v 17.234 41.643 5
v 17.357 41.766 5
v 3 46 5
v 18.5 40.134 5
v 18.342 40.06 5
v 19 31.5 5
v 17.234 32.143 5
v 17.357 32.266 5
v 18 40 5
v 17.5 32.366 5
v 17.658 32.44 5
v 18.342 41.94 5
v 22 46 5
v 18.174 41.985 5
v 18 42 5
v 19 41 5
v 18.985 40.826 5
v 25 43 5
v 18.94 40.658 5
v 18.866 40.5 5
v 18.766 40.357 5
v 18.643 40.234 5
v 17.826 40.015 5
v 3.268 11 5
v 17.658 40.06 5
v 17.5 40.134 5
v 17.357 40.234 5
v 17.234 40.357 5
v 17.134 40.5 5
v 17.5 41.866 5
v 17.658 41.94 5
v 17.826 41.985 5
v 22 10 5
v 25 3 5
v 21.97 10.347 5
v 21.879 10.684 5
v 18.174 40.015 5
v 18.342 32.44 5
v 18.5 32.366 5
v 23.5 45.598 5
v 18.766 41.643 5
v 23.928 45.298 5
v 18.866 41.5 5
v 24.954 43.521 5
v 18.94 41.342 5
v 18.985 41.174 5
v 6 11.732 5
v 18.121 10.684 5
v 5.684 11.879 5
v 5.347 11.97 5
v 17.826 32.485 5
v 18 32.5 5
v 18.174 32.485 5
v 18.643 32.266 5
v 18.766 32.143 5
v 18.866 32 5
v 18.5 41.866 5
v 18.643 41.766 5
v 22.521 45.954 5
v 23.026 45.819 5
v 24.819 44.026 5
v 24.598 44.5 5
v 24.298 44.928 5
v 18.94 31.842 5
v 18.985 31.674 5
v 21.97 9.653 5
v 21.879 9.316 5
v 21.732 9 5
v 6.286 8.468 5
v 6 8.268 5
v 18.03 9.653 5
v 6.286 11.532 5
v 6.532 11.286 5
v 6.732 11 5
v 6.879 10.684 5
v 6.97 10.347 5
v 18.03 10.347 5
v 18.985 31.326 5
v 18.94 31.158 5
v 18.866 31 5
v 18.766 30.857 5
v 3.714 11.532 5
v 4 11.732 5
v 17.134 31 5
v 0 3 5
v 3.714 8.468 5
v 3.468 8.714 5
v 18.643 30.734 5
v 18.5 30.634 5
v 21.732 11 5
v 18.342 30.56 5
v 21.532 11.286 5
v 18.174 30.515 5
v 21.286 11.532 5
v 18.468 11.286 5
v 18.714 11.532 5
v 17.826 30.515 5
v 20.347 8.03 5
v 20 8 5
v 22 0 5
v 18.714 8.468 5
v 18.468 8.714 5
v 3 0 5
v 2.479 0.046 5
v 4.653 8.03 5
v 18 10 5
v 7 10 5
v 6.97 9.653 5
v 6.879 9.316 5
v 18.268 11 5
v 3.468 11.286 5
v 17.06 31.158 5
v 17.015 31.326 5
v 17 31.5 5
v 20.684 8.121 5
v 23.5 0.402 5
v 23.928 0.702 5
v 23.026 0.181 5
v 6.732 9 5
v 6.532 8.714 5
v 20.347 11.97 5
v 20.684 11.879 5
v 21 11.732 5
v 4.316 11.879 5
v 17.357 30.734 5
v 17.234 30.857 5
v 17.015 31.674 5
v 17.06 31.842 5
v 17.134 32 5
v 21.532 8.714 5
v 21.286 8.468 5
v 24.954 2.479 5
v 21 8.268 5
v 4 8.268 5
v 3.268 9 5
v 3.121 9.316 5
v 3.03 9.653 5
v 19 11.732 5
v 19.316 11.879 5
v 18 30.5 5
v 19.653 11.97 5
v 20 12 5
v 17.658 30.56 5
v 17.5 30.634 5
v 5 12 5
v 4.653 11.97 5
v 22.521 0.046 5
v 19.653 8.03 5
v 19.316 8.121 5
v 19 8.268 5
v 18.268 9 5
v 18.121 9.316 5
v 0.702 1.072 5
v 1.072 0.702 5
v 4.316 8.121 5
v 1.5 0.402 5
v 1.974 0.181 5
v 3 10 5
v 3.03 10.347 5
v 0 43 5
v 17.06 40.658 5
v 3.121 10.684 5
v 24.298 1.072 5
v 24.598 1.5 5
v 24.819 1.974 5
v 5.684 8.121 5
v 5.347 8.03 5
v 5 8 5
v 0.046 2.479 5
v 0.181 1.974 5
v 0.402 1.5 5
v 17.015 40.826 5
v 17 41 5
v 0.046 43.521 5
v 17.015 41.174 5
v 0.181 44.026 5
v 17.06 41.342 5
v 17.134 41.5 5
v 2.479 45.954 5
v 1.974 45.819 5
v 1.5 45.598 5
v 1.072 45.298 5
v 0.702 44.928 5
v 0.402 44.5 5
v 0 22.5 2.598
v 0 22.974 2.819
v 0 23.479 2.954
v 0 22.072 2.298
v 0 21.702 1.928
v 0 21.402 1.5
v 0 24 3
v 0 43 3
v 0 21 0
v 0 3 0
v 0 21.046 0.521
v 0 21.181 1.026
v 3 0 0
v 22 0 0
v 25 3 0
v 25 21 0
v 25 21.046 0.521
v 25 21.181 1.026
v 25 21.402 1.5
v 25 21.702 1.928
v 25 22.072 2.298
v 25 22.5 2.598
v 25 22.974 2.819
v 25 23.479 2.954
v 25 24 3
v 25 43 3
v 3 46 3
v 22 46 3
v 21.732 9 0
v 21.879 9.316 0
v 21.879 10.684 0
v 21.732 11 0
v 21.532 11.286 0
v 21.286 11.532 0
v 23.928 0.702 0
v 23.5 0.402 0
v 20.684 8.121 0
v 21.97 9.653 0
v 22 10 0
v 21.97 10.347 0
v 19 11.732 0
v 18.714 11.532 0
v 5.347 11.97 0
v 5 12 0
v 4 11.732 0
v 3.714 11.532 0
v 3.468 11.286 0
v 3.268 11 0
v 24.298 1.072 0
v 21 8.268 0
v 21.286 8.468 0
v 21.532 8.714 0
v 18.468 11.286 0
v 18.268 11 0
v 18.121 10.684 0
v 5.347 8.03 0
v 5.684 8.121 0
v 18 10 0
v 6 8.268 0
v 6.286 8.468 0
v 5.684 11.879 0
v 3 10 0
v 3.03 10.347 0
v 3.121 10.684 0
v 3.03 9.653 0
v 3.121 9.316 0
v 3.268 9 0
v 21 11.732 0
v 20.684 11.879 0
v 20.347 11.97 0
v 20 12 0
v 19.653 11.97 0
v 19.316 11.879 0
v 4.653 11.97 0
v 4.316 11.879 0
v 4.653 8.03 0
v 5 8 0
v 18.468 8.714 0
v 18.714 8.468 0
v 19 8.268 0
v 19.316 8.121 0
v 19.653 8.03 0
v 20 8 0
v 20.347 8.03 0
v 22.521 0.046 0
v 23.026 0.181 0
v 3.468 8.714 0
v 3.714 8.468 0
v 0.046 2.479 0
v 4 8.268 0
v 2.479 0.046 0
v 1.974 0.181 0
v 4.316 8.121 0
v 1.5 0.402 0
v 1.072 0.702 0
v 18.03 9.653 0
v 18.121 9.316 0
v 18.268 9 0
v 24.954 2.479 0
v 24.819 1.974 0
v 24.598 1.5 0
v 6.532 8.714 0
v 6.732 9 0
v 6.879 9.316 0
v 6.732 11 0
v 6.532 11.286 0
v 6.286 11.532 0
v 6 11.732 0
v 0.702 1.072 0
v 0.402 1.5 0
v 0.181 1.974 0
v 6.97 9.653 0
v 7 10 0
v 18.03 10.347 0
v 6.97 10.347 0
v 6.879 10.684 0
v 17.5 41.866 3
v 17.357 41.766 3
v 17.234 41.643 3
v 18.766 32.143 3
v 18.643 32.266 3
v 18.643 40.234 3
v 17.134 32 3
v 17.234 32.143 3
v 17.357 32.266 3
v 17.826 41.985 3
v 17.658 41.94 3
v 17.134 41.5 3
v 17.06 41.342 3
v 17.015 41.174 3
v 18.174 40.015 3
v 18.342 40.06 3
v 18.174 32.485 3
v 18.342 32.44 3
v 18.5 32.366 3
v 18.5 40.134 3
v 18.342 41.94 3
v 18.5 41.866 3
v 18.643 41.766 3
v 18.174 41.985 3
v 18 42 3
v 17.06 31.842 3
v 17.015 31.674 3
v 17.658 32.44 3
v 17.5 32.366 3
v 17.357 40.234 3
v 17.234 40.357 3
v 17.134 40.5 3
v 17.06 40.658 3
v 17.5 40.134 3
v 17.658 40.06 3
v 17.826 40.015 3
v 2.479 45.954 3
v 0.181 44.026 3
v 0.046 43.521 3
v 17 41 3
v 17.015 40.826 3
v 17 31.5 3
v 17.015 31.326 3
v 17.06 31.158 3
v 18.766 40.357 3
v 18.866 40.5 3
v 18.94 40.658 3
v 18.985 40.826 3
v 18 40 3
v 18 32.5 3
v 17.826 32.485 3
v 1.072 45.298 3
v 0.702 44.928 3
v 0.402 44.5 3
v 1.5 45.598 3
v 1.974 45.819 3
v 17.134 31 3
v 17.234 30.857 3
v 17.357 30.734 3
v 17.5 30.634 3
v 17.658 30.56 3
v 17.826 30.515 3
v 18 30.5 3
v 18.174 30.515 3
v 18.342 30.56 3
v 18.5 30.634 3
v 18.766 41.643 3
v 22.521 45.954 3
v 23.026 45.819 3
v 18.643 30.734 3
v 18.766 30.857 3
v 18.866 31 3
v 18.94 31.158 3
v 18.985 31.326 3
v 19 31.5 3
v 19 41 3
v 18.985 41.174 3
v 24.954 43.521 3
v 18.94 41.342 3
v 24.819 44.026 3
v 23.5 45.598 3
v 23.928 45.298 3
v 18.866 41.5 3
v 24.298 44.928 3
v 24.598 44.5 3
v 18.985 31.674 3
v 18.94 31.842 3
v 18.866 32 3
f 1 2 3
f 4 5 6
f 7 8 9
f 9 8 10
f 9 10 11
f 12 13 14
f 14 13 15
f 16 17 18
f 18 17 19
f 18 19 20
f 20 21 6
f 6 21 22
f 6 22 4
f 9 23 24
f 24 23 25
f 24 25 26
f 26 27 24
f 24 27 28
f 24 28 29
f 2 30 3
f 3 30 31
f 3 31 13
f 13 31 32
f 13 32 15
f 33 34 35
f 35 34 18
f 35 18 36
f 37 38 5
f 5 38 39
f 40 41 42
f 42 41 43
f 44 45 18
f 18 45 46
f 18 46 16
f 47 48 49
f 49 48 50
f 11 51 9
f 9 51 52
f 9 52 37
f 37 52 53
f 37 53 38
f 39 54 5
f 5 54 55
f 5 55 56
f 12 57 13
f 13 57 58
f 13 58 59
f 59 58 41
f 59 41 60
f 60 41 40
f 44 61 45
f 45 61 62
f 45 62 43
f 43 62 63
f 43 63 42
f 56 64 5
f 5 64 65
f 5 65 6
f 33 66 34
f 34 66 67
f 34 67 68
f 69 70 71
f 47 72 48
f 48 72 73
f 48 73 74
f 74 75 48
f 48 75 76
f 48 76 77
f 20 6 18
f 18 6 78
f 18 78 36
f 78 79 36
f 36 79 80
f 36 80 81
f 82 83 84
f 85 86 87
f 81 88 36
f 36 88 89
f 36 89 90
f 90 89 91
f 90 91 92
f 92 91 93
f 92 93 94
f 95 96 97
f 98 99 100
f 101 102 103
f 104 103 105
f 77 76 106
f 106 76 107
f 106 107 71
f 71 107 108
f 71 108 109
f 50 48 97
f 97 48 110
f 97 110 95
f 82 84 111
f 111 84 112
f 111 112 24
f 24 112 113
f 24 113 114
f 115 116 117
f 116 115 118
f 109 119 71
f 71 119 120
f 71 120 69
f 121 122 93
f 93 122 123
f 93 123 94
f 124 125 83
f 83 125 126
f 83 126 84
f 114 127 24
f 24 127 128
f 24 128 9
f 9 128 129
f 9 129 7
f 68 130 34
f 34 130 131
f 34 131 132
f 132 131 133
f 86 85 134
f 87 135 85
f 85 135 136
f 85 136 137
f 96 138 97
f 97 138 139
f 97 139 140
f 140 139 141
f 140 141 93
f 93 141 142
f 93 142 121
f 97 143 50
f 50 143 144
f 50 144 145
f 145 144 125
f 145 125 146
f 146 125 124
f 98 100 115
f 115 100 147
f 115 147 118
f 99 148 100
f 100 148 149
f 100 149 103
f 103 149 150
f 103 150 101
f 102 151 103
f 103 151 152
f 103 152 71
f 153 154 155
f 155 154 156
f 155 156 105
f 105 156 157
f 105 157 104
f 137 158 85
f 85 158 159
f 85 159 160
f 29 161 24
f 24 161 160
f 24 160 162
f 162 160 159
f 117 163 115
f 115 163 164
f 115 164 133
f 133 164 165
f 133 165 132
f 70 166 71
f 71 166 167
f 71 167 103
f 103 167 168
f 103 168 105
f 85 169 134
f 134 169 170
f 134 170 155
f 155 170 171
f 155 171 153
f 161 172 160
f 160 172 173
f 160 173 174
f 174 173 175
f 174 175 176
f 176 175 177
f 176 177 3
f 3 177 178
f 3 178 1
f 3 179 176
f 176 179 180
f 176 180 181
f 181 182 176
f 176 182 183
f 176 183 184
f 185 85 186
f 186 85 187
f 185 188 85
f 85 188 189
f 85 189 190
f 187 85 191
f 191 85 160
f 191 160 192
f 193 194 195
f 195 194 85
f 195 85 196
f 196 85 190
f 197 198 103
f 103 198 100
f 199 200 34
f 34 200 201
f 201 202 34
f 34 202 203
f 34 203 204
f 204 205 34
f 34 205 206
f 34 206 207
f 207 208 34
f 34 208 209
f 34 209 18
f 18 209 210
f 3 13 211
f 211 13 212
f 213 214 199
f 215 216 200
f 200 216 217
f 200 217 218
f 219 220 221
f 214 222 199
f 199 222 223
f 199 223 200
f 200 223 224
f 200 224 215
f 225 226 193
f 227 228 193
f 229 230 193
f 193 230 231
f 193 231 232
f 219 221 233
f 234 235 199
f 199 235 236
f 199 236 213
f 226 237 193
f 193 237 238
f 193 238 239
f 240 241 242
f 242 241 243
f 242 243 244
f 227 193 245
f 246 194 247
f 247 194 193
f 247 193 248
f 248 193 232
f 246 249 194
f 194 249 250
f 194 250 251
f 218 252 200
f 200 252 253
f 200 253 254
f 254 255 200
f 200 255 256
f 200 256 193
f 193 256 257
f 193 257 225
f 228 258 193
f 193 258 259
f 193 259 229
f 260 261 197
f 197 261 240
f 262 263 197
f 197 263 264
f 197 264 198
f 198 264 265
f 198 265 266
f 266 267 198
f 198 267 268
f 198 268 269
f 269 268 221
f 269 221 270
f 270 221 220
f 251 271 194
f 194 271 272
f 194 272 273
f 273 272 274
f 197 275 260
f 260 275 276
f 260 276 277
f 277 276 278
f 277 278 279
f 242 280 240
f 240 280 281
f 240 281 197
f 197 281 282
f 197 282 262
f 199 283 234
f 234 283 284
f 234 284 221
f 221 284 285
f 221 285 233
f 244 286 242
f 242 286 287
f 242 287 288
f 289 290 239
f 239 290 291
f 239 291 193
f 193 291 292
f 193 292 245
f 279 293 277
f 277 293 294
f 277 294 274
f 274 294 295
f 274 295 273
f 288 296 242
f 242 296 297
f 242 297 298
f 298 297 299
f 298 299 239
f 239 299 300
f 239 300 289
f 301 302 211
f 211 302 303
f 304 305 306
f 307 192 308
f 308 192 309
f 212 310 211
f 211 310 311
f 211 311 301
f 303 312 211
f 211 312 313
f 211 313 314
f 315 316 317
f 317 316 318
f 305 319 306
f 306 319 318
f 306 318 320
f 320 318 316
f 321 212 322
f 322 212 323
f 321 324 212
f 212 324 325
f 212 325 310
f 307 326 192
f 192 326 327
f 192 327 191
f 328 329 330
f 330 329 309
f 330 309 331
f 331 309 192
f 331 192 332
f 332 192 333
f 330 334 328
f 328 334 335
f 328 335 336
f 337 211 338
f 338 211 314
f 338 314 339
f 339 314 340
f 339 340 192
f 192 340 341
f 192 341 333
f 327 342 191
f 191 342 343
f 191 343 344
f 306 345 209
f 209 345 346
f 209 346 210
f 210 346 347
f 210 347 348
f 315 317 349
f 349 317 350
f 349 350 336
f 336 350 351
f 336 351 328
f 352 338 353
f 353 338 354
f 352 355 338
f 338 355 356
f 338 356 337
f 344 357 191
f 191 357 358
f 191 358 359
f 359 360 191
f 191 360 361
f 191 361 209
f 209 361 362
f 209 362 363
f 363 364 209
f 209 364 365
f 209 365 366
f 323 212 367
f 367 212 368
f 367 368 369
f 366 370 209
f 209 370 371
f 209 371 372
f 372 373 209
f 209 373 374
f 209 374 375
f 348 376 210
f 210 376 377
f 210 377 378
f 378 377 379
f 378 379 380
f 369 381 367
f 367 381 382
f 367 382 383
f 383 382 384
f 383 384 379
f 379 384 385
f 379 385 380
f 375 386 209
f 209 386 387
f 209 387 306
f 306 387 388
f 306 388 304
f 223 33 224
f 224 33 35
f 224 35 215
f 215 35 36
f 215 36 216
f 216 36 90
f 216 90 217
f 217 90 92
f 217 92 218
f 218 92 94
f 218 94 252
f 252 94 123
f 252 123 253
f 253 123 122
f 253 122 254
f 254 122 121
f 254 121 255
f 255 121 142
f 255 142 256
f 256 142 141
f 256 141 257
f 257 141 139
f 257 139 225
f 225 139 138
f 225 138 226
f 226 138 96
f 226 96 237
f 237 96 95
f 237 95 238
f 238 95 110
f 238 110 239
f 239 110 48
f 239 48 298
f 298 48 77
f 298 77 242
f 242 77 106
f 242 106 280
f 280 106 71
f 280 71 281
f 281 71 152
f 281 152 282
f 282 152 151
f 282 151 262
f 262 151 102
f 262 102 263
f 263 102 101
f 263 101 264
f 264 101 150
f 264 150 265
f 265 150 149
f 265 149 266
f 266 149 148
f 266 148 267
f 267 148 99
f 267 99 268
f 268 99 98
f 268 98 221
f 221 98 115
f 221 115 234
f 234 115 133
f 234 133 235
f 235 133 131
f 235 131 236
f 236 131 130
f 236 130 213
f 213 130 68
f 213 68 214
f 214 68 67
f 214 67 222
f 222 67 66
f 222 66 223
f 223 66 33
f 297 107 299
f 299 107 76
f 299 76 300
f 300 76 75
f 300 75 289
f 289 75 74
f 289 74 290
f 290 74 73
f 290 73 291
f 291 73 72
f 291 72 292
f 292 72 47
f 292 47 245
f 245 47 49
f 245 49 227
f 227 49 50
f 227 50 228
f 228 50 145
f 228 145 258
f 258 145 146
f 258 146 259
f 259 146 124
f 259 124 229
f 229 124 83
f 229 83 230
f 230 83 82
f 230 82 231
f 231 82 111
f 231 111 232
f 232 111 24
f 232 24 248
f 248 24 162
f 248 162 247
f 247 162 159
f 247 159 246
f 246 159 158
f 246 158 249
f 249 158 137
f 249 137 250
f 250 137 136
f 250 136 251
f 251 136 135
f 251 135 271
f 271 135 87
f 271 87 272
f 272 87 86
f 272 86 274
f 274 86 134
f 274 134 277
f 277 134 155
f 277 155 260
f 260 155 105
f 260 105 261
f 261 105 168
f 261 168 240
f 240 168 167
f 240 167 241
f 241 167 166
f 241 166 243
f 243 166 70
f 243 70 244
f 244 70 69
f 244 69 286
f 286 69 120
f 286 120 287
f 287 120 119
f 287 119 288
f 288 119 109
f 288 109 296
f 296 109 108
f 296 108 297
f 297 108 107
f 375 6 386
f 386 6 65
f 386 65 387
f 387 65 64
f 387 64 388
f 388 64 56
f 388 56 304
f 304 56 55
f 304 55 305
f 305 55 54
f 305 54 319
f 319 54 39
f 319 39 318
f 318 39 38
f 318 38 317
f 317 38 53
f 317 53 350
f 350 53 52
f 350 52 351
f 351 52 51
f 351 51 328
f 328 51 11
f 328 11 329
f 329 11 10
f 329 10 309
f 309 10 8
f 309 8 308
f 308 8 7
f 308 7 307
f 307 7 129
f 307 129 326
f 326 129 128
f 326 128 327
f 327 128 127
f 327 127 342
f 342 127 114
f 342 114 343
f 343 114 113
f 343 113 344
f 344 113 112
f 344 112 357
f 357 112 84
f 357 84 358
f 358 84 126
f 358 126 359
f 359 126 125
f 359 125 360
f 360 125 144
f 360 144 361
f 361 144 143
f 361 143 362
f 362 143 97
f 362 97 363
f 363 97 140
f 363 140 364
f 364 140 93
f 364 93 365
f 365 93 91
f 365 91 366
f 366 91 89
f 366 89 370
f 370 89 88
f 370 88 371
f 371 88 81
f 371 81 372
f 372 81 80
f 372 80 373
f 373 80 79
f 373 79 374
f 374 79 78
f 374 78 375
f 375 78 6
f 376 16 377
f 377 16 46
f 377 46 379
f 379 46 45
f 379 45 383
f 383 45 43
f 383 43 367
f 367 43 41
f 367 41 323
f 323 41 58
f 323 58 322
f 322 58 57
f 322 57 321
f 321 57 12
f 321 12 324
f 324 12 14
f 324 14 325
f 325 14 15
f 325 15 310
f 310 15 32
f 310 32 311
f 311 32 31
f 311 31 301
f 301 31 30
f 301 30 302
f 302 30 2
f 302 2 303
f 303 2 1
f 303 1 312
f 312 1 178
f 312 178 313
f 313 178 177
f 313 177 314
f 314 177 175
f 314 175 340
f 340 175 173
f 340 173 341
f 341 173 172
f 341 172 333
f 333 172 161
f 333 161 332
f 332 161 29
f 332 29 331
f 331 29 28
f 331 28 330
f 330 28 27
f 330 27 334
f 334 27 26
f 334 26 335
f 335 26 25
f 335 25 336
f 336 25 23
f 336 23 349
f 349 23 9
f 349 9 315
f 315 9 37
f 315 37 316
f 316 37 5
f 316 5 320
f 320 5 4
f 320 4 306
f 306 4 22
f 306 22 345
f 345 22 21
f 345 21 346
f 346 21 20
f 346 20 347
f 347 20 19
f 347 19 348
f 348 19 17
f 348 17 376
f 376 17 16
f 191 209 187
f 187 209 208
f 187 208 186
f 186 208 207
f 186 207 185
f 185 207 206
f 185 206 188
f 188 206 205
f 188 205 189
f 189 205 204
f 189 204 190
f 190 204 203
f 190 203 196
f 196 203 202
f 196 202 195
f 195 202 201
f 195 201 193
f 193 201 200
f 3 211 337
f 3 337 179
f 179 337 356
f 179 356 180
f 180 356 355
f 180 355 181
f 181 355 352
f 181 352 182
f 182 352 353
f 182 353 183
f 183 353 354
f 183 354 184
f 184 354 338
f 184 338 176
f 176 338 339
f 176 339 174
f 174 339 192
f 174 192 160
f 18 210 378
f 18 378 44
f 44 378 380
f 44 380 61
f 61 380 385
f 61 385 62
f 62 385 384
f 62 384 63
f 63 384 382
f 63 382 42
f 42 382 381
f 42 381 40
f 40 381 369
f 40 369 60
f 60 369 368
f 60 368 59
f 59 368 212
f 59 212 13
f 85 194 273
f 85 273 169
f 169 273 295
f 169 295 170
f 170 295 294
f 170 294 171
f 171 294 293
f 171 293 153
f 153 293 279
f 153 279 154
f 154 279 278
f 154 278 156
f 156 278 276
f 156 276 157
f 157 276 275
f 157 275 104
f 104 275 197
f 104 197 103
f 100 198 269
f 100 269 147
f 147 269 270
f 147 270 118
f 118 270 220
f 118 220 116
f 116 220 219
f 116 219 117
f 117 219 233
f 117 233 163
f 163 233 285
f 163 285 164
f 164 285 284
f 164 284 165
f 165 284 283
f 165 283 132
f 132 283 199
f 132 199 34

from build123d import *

# Parameters (mm, degrees)
SKETCH_1_W          = 25
SKETCH_1_H          = 46
EXTRUDE_1_DEPTH     = 5
SKETCH_2_W          = 25
SKETCH_2_H          = 25
CUT_EXTRUDE_1_DEPTH = 3
M4X0_7_1_D          = 4
M2X0_4_1_D          = 2
FILLET_1_R          = 3
FILLET_2_R          = 3


with BuildPart() as part:
    # ｽｹｯﾁ1 → ﾎﾞｽ - 押し出し1 (new body)
    with BuildSketch(Plane.XY):
        with Locations((12.5, 23)):
            Rectangle(SKETCH_1_W, SKETCH_1_H)
    extrude(amount=EXTRUDE_1_DEPTH)

    # ｽｹｯﾁ2 → ｶｯﾄ - 押し出し1 (cut)
    with BuildSketch(Plane(origin=(0, 0, 0), x_dir=(-1, 0, 0), z_dir=(0, 0, -1))):
        with Locations((-12.5, 33.5)):
            Rectangle(SKETCH_2_W, SKETCH_2_H)
    extrude(amount=-CUT_EXTRUDE_1_DEPTH, mode=Mode.SUBTRACT)

    # M4x0.7 ねじ穴1 (through all)
    with Locations(Plane.XY.offset(5)):
        with Locations((5, 10), (20, 10)):
            Hole(M4X0_7_1_D / 2)

    # M2x0.4 ねじ穴1 (through all)
    with Locations(Plane.XY.offset(5)):
        with Locations((18, 41), (18, 31.5)):
            Hole(M2X0_4_1_D / 2)

    # ﾌｨﾚｯﾄ1
    fillet_1_edges = [part.edges().sort_by_distance(p)[0] for p in [
        (12.5, 21, 3),
    ]]
    fillet(fillet_1_edges, radius=FILLET_1_R - 0.0001)  # a hair under: the kernel refuses the full size

    # ﾌｨﾚｯﾄ2
    fillet_2_edges = [part.edges().sort_by_distance(p)[0] for p in [
        (0, 46, 4),
        (25, 46, 4),
        (25, 0, 2.5),
        (0, 0, 2.5),
    ]]
    fillet(fillet_2_edges, radius=FILLET_2_R)


solid = part.part
